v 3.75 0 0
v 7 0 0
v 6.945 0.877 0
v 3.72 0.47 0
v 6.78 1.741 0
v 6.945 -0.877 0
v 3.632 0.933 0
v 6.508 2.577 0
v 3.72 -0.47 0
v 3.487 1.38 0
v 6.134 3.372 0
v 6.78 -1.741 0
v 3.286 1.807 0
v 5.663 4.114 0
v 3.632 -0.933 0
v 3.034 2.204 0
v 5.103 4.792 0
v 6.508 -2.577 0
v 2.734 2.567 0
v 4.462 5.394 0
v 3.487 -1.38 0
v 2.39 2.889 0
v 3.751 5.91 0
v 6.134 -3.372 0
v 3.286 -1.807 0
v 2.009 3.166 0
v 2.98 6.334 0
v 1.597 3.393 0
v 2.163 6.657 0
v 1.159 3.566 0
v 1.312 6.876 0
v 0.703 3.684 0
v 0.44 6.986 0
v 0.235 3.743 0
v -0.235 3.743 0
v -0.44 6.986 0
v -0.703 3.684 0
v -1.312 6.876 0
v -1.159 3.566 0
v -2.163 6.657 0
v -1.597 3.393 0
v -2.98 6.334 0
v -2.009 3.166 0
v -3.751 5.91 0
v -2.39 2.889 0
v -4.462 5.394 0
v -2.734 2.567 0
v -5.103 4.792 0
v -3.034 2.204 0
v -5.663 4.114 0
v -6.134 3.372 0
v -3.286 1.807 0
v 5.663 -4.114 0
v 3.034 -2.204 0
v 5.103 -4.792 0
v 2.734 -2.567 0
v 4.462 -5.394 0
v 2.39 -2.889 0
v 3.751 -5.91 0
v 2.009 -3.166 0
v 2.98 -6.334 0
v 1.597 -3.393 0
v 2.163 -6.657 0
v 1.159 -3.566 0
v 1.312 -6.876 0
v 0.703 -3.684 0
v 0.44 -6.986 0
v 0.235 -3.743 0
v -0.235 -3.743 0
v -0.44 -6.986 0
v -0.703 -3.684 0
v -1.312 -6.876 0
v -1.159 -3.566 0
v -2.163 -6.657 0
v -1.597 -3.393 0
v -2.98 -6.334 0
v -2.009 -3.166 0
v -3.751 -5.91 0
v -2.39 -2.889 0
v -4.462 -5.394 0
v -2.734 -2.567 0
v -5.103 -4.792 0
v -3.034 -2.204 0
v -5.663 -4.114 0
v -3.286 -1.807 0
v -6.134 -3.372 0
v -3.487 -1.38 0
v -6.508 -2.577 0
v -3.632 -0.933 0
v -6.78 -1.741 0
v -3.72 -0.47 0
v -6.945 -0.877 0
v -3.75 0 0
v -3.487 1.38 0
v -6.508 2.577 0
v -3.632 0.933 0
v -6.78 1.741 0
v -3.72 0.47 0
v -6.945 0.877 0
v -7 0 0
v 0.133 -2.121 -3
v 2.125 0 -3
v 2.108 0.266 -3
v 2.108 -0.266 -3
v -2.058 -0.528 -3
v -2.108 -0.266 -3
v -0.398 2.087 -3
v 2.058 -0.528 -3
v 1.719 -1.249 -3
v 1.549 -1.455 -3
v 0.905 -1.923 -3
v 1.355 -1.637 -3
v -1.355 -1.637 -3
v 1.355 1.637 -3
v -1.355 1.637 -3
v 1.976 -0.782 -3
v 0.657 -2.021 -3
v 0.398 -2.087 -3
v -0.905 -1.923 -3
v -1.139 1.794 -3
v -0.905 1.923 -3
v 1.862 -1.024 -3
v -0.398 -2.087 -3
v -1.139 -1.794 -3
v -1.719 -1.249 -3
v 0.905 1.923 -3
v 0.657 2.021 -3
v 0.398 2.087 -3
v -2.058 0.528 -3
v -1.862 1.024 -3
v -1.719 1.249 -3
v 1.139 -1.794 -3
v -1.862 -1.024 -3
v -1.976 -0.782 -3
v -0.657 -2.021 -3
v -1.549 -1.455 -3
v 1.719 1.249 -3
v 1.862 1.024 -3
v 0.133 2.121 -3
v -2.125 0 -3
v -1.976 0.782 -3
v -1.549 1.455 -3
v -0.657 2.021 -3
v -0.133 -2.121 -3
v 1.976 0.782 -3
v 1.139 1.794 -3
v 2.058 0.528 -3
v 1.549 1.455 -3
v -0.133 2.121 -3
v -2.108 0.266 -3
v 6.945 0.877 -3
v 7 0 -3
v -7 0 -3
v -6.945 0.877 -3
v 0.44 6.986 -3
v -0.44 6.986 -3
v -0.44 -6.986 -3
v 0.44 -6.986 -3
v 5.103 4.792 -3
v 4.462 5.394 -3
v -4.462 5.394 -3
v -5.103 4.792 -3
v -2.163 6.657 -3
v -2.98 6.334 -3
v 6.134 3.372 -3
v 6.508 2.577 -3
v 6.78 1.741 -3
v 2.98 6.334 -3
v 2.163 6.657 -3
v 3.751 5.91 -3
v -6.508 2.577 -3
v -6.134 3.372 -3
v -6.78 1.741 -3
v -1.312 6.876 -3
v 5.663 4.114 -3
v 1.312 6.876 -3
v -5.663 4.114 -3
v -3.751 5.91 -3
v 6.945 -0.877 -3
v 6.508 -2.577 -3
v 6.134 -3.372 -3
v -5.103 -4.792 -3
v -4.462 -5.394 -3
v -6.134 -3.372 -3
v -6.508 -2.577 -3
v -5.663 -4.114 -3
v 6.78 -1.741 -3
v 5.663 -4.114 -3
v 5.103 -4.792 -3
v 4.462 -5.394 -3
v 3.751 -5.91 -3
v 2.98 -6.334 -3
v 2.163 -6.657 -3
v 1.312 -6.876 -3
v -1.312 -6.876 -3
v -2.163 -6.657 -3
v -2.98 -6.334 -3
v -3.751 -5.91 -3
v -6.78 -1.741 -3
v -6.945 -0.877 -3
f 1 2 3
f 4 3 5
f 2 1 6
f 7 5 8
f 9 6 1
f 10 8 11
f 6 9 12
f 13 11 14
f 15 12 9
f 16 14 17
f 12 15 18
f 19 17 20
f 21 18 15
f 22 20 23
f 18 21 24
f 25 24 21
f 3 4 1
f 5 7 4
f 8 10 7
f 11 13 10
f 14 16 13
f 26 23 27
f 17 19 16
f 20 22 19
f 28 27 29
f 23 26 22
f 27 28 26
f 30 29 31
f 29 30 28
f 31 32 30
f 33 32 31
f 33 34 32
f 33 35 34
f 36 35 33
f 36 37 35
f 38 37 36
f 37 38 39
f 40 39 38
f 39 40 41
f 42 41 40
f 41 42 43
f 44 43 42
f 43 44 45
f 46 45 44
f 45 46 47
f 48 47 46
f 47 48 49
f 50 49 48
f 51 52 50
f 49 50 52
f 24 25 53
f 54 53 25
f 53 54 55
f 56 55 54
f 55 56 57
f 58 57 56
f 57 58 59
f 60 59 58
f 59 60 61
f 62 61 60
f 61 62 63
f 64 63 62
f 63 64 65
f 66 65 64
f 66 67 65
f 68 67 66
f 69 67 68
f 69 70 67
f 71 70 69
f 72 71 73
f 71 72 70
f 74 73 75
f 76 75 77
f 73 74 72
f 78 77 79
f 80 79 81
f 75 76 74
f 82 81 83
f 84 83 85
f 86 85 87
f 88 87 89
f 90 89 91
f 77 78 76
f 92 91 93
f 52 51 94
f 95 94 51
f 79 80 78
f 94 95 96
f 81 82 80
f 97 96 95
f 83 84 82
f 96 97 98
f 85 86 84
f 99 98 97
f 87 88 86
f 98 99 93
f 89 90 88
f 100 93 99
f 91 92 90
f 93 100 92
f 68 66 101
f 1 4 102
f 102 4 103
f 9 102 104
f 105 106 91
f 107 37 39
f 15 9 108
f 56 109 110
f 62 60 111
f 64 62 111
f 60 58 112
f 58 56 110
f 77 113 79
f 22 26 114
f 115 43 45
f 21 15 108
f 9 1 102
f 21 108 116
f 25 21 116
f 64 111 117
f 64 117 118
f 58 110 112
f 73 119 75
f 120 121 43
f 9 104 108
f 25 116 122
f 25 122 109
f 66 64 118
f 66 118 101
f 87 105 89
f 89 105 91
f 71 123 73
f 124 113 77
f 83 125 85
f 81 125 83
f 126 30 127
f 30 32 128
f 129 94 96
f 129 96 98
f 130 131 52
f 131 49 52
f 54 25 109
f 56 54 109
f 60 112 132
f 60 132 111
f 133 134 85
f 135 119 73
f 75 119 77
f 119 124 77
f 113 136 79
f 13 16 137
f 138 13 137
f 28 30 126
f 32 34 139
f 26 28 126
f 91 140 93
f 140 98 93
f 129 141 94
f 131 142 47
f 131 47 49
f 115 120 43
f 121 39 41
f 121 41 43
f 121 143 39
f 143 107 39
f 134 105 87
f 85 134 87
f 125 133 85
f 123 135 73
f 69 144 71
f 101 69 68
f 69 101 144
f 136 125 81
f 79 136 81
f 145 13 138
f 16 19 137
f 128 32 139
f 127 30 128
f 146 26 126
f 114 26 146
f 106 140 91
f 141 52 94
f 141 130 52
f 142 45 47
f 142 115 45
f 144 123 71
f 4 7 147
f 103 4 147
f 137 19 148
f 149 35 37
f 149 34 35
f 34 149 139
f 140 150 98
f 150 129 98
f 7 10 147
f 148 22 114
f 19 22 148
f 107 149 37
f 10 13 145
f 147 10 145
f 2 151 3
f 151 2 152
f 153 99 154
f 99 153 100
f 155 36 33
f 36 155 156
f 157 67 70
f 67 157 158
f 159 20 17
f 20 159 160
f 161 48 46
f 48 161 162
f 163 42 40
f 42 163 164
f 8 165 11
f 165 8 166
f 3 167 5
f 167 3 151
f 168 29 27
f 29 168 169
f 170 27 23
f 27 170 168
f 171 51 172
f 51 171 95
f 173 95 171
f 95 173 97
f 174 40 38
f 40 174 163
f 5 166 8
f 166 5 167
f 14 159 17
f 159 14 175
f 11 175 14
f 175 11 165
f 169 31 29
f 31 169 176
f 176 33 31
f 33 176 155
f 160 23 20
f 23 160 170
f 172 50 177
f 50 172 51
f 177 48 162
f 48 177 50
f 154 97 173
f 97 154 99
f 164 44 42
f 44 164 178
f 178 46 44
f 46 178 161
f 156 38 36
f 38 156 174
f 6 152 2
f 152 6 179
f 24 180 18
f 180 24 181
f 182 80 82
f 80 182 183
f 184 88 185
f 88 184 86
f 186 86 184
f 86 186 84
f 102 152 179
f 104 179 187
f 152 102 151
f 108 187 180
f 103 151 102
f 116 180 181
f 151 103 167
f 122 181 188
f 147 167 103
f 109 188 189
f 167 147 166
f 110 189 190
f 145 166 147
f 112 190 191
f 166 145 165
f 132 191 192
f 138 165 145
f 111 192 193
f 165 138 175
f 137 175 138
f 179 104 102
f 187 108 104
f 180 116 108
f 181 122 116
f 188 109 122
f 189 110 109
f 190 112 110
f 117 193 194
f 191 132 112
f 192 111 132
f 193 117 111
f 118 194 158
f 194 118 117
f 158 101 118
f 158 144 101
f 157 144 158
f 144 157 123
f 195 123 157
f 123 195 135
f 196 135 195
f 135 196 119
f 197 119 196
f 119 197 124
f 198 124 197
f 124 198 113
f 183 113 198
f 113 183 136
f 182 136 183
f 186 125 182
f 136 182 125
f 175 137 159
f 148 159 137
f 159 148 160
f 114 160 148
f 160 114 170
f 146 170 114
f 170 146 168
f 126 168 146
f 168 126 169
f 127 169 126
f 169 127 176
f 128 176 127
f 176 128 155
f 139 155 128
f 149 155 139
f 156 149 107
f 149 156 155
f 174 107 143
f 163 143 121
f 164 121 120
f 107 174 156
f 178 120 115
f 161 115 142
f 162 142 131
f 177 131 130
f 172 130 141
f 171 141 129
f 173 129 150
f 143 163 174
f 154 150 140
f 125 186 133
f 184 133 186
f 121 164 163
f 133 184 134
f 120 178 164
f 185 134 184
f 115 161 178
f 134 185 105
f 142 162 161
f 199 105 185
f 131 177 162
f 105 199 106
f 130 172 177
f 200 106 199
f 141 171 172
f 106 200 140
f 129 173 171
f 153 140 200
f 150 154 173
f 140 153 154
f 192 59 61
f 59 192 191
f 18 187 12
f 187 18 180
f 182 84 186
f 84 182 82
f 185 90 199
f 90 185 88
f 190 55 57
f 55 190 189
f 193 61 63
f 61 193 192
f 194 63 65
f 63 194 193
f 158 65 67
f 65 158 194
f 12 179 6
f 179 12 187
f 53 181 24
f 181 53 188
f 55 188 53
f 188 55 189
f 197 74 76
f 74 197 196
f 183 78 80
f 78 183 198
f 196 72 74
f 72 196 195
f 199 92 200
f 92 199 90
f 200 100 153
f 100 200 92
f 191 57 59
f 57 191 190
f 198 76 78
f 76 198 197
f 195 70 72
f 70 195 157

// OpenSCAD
$fn = 50;


difference() {
	union() {
		translate(v = [0, 0, -3.0000000000]) {
			cylinder(h = 3, r = 7.0000000000);
		}
	}
	union() {
		translate(v = [0, 0, 0]) {
			rotate(a = [0, 0, 0]) {
				difference() {
					union() {
						translate(v = [0, 0, -6.0000000000]) {
							cylinder(h = 6, r = 2.0000000000);
						}
						translate(v = [0, 0, -3]) {
							cylinder(h = 3, r1 = 2.1250000000, r2 = 3.7500000000);
						}
						translate(v = [0, 0, -6.0000000000]) {
							cylinder(h = 6, r = 2.1250000000);
						}
						translate(v = [0, 0, -6.0000000000]) {
							cylinder(h = 6, r = 2.0000000000);
						}
					}
					union();
				}
			}
		}
	}
}
